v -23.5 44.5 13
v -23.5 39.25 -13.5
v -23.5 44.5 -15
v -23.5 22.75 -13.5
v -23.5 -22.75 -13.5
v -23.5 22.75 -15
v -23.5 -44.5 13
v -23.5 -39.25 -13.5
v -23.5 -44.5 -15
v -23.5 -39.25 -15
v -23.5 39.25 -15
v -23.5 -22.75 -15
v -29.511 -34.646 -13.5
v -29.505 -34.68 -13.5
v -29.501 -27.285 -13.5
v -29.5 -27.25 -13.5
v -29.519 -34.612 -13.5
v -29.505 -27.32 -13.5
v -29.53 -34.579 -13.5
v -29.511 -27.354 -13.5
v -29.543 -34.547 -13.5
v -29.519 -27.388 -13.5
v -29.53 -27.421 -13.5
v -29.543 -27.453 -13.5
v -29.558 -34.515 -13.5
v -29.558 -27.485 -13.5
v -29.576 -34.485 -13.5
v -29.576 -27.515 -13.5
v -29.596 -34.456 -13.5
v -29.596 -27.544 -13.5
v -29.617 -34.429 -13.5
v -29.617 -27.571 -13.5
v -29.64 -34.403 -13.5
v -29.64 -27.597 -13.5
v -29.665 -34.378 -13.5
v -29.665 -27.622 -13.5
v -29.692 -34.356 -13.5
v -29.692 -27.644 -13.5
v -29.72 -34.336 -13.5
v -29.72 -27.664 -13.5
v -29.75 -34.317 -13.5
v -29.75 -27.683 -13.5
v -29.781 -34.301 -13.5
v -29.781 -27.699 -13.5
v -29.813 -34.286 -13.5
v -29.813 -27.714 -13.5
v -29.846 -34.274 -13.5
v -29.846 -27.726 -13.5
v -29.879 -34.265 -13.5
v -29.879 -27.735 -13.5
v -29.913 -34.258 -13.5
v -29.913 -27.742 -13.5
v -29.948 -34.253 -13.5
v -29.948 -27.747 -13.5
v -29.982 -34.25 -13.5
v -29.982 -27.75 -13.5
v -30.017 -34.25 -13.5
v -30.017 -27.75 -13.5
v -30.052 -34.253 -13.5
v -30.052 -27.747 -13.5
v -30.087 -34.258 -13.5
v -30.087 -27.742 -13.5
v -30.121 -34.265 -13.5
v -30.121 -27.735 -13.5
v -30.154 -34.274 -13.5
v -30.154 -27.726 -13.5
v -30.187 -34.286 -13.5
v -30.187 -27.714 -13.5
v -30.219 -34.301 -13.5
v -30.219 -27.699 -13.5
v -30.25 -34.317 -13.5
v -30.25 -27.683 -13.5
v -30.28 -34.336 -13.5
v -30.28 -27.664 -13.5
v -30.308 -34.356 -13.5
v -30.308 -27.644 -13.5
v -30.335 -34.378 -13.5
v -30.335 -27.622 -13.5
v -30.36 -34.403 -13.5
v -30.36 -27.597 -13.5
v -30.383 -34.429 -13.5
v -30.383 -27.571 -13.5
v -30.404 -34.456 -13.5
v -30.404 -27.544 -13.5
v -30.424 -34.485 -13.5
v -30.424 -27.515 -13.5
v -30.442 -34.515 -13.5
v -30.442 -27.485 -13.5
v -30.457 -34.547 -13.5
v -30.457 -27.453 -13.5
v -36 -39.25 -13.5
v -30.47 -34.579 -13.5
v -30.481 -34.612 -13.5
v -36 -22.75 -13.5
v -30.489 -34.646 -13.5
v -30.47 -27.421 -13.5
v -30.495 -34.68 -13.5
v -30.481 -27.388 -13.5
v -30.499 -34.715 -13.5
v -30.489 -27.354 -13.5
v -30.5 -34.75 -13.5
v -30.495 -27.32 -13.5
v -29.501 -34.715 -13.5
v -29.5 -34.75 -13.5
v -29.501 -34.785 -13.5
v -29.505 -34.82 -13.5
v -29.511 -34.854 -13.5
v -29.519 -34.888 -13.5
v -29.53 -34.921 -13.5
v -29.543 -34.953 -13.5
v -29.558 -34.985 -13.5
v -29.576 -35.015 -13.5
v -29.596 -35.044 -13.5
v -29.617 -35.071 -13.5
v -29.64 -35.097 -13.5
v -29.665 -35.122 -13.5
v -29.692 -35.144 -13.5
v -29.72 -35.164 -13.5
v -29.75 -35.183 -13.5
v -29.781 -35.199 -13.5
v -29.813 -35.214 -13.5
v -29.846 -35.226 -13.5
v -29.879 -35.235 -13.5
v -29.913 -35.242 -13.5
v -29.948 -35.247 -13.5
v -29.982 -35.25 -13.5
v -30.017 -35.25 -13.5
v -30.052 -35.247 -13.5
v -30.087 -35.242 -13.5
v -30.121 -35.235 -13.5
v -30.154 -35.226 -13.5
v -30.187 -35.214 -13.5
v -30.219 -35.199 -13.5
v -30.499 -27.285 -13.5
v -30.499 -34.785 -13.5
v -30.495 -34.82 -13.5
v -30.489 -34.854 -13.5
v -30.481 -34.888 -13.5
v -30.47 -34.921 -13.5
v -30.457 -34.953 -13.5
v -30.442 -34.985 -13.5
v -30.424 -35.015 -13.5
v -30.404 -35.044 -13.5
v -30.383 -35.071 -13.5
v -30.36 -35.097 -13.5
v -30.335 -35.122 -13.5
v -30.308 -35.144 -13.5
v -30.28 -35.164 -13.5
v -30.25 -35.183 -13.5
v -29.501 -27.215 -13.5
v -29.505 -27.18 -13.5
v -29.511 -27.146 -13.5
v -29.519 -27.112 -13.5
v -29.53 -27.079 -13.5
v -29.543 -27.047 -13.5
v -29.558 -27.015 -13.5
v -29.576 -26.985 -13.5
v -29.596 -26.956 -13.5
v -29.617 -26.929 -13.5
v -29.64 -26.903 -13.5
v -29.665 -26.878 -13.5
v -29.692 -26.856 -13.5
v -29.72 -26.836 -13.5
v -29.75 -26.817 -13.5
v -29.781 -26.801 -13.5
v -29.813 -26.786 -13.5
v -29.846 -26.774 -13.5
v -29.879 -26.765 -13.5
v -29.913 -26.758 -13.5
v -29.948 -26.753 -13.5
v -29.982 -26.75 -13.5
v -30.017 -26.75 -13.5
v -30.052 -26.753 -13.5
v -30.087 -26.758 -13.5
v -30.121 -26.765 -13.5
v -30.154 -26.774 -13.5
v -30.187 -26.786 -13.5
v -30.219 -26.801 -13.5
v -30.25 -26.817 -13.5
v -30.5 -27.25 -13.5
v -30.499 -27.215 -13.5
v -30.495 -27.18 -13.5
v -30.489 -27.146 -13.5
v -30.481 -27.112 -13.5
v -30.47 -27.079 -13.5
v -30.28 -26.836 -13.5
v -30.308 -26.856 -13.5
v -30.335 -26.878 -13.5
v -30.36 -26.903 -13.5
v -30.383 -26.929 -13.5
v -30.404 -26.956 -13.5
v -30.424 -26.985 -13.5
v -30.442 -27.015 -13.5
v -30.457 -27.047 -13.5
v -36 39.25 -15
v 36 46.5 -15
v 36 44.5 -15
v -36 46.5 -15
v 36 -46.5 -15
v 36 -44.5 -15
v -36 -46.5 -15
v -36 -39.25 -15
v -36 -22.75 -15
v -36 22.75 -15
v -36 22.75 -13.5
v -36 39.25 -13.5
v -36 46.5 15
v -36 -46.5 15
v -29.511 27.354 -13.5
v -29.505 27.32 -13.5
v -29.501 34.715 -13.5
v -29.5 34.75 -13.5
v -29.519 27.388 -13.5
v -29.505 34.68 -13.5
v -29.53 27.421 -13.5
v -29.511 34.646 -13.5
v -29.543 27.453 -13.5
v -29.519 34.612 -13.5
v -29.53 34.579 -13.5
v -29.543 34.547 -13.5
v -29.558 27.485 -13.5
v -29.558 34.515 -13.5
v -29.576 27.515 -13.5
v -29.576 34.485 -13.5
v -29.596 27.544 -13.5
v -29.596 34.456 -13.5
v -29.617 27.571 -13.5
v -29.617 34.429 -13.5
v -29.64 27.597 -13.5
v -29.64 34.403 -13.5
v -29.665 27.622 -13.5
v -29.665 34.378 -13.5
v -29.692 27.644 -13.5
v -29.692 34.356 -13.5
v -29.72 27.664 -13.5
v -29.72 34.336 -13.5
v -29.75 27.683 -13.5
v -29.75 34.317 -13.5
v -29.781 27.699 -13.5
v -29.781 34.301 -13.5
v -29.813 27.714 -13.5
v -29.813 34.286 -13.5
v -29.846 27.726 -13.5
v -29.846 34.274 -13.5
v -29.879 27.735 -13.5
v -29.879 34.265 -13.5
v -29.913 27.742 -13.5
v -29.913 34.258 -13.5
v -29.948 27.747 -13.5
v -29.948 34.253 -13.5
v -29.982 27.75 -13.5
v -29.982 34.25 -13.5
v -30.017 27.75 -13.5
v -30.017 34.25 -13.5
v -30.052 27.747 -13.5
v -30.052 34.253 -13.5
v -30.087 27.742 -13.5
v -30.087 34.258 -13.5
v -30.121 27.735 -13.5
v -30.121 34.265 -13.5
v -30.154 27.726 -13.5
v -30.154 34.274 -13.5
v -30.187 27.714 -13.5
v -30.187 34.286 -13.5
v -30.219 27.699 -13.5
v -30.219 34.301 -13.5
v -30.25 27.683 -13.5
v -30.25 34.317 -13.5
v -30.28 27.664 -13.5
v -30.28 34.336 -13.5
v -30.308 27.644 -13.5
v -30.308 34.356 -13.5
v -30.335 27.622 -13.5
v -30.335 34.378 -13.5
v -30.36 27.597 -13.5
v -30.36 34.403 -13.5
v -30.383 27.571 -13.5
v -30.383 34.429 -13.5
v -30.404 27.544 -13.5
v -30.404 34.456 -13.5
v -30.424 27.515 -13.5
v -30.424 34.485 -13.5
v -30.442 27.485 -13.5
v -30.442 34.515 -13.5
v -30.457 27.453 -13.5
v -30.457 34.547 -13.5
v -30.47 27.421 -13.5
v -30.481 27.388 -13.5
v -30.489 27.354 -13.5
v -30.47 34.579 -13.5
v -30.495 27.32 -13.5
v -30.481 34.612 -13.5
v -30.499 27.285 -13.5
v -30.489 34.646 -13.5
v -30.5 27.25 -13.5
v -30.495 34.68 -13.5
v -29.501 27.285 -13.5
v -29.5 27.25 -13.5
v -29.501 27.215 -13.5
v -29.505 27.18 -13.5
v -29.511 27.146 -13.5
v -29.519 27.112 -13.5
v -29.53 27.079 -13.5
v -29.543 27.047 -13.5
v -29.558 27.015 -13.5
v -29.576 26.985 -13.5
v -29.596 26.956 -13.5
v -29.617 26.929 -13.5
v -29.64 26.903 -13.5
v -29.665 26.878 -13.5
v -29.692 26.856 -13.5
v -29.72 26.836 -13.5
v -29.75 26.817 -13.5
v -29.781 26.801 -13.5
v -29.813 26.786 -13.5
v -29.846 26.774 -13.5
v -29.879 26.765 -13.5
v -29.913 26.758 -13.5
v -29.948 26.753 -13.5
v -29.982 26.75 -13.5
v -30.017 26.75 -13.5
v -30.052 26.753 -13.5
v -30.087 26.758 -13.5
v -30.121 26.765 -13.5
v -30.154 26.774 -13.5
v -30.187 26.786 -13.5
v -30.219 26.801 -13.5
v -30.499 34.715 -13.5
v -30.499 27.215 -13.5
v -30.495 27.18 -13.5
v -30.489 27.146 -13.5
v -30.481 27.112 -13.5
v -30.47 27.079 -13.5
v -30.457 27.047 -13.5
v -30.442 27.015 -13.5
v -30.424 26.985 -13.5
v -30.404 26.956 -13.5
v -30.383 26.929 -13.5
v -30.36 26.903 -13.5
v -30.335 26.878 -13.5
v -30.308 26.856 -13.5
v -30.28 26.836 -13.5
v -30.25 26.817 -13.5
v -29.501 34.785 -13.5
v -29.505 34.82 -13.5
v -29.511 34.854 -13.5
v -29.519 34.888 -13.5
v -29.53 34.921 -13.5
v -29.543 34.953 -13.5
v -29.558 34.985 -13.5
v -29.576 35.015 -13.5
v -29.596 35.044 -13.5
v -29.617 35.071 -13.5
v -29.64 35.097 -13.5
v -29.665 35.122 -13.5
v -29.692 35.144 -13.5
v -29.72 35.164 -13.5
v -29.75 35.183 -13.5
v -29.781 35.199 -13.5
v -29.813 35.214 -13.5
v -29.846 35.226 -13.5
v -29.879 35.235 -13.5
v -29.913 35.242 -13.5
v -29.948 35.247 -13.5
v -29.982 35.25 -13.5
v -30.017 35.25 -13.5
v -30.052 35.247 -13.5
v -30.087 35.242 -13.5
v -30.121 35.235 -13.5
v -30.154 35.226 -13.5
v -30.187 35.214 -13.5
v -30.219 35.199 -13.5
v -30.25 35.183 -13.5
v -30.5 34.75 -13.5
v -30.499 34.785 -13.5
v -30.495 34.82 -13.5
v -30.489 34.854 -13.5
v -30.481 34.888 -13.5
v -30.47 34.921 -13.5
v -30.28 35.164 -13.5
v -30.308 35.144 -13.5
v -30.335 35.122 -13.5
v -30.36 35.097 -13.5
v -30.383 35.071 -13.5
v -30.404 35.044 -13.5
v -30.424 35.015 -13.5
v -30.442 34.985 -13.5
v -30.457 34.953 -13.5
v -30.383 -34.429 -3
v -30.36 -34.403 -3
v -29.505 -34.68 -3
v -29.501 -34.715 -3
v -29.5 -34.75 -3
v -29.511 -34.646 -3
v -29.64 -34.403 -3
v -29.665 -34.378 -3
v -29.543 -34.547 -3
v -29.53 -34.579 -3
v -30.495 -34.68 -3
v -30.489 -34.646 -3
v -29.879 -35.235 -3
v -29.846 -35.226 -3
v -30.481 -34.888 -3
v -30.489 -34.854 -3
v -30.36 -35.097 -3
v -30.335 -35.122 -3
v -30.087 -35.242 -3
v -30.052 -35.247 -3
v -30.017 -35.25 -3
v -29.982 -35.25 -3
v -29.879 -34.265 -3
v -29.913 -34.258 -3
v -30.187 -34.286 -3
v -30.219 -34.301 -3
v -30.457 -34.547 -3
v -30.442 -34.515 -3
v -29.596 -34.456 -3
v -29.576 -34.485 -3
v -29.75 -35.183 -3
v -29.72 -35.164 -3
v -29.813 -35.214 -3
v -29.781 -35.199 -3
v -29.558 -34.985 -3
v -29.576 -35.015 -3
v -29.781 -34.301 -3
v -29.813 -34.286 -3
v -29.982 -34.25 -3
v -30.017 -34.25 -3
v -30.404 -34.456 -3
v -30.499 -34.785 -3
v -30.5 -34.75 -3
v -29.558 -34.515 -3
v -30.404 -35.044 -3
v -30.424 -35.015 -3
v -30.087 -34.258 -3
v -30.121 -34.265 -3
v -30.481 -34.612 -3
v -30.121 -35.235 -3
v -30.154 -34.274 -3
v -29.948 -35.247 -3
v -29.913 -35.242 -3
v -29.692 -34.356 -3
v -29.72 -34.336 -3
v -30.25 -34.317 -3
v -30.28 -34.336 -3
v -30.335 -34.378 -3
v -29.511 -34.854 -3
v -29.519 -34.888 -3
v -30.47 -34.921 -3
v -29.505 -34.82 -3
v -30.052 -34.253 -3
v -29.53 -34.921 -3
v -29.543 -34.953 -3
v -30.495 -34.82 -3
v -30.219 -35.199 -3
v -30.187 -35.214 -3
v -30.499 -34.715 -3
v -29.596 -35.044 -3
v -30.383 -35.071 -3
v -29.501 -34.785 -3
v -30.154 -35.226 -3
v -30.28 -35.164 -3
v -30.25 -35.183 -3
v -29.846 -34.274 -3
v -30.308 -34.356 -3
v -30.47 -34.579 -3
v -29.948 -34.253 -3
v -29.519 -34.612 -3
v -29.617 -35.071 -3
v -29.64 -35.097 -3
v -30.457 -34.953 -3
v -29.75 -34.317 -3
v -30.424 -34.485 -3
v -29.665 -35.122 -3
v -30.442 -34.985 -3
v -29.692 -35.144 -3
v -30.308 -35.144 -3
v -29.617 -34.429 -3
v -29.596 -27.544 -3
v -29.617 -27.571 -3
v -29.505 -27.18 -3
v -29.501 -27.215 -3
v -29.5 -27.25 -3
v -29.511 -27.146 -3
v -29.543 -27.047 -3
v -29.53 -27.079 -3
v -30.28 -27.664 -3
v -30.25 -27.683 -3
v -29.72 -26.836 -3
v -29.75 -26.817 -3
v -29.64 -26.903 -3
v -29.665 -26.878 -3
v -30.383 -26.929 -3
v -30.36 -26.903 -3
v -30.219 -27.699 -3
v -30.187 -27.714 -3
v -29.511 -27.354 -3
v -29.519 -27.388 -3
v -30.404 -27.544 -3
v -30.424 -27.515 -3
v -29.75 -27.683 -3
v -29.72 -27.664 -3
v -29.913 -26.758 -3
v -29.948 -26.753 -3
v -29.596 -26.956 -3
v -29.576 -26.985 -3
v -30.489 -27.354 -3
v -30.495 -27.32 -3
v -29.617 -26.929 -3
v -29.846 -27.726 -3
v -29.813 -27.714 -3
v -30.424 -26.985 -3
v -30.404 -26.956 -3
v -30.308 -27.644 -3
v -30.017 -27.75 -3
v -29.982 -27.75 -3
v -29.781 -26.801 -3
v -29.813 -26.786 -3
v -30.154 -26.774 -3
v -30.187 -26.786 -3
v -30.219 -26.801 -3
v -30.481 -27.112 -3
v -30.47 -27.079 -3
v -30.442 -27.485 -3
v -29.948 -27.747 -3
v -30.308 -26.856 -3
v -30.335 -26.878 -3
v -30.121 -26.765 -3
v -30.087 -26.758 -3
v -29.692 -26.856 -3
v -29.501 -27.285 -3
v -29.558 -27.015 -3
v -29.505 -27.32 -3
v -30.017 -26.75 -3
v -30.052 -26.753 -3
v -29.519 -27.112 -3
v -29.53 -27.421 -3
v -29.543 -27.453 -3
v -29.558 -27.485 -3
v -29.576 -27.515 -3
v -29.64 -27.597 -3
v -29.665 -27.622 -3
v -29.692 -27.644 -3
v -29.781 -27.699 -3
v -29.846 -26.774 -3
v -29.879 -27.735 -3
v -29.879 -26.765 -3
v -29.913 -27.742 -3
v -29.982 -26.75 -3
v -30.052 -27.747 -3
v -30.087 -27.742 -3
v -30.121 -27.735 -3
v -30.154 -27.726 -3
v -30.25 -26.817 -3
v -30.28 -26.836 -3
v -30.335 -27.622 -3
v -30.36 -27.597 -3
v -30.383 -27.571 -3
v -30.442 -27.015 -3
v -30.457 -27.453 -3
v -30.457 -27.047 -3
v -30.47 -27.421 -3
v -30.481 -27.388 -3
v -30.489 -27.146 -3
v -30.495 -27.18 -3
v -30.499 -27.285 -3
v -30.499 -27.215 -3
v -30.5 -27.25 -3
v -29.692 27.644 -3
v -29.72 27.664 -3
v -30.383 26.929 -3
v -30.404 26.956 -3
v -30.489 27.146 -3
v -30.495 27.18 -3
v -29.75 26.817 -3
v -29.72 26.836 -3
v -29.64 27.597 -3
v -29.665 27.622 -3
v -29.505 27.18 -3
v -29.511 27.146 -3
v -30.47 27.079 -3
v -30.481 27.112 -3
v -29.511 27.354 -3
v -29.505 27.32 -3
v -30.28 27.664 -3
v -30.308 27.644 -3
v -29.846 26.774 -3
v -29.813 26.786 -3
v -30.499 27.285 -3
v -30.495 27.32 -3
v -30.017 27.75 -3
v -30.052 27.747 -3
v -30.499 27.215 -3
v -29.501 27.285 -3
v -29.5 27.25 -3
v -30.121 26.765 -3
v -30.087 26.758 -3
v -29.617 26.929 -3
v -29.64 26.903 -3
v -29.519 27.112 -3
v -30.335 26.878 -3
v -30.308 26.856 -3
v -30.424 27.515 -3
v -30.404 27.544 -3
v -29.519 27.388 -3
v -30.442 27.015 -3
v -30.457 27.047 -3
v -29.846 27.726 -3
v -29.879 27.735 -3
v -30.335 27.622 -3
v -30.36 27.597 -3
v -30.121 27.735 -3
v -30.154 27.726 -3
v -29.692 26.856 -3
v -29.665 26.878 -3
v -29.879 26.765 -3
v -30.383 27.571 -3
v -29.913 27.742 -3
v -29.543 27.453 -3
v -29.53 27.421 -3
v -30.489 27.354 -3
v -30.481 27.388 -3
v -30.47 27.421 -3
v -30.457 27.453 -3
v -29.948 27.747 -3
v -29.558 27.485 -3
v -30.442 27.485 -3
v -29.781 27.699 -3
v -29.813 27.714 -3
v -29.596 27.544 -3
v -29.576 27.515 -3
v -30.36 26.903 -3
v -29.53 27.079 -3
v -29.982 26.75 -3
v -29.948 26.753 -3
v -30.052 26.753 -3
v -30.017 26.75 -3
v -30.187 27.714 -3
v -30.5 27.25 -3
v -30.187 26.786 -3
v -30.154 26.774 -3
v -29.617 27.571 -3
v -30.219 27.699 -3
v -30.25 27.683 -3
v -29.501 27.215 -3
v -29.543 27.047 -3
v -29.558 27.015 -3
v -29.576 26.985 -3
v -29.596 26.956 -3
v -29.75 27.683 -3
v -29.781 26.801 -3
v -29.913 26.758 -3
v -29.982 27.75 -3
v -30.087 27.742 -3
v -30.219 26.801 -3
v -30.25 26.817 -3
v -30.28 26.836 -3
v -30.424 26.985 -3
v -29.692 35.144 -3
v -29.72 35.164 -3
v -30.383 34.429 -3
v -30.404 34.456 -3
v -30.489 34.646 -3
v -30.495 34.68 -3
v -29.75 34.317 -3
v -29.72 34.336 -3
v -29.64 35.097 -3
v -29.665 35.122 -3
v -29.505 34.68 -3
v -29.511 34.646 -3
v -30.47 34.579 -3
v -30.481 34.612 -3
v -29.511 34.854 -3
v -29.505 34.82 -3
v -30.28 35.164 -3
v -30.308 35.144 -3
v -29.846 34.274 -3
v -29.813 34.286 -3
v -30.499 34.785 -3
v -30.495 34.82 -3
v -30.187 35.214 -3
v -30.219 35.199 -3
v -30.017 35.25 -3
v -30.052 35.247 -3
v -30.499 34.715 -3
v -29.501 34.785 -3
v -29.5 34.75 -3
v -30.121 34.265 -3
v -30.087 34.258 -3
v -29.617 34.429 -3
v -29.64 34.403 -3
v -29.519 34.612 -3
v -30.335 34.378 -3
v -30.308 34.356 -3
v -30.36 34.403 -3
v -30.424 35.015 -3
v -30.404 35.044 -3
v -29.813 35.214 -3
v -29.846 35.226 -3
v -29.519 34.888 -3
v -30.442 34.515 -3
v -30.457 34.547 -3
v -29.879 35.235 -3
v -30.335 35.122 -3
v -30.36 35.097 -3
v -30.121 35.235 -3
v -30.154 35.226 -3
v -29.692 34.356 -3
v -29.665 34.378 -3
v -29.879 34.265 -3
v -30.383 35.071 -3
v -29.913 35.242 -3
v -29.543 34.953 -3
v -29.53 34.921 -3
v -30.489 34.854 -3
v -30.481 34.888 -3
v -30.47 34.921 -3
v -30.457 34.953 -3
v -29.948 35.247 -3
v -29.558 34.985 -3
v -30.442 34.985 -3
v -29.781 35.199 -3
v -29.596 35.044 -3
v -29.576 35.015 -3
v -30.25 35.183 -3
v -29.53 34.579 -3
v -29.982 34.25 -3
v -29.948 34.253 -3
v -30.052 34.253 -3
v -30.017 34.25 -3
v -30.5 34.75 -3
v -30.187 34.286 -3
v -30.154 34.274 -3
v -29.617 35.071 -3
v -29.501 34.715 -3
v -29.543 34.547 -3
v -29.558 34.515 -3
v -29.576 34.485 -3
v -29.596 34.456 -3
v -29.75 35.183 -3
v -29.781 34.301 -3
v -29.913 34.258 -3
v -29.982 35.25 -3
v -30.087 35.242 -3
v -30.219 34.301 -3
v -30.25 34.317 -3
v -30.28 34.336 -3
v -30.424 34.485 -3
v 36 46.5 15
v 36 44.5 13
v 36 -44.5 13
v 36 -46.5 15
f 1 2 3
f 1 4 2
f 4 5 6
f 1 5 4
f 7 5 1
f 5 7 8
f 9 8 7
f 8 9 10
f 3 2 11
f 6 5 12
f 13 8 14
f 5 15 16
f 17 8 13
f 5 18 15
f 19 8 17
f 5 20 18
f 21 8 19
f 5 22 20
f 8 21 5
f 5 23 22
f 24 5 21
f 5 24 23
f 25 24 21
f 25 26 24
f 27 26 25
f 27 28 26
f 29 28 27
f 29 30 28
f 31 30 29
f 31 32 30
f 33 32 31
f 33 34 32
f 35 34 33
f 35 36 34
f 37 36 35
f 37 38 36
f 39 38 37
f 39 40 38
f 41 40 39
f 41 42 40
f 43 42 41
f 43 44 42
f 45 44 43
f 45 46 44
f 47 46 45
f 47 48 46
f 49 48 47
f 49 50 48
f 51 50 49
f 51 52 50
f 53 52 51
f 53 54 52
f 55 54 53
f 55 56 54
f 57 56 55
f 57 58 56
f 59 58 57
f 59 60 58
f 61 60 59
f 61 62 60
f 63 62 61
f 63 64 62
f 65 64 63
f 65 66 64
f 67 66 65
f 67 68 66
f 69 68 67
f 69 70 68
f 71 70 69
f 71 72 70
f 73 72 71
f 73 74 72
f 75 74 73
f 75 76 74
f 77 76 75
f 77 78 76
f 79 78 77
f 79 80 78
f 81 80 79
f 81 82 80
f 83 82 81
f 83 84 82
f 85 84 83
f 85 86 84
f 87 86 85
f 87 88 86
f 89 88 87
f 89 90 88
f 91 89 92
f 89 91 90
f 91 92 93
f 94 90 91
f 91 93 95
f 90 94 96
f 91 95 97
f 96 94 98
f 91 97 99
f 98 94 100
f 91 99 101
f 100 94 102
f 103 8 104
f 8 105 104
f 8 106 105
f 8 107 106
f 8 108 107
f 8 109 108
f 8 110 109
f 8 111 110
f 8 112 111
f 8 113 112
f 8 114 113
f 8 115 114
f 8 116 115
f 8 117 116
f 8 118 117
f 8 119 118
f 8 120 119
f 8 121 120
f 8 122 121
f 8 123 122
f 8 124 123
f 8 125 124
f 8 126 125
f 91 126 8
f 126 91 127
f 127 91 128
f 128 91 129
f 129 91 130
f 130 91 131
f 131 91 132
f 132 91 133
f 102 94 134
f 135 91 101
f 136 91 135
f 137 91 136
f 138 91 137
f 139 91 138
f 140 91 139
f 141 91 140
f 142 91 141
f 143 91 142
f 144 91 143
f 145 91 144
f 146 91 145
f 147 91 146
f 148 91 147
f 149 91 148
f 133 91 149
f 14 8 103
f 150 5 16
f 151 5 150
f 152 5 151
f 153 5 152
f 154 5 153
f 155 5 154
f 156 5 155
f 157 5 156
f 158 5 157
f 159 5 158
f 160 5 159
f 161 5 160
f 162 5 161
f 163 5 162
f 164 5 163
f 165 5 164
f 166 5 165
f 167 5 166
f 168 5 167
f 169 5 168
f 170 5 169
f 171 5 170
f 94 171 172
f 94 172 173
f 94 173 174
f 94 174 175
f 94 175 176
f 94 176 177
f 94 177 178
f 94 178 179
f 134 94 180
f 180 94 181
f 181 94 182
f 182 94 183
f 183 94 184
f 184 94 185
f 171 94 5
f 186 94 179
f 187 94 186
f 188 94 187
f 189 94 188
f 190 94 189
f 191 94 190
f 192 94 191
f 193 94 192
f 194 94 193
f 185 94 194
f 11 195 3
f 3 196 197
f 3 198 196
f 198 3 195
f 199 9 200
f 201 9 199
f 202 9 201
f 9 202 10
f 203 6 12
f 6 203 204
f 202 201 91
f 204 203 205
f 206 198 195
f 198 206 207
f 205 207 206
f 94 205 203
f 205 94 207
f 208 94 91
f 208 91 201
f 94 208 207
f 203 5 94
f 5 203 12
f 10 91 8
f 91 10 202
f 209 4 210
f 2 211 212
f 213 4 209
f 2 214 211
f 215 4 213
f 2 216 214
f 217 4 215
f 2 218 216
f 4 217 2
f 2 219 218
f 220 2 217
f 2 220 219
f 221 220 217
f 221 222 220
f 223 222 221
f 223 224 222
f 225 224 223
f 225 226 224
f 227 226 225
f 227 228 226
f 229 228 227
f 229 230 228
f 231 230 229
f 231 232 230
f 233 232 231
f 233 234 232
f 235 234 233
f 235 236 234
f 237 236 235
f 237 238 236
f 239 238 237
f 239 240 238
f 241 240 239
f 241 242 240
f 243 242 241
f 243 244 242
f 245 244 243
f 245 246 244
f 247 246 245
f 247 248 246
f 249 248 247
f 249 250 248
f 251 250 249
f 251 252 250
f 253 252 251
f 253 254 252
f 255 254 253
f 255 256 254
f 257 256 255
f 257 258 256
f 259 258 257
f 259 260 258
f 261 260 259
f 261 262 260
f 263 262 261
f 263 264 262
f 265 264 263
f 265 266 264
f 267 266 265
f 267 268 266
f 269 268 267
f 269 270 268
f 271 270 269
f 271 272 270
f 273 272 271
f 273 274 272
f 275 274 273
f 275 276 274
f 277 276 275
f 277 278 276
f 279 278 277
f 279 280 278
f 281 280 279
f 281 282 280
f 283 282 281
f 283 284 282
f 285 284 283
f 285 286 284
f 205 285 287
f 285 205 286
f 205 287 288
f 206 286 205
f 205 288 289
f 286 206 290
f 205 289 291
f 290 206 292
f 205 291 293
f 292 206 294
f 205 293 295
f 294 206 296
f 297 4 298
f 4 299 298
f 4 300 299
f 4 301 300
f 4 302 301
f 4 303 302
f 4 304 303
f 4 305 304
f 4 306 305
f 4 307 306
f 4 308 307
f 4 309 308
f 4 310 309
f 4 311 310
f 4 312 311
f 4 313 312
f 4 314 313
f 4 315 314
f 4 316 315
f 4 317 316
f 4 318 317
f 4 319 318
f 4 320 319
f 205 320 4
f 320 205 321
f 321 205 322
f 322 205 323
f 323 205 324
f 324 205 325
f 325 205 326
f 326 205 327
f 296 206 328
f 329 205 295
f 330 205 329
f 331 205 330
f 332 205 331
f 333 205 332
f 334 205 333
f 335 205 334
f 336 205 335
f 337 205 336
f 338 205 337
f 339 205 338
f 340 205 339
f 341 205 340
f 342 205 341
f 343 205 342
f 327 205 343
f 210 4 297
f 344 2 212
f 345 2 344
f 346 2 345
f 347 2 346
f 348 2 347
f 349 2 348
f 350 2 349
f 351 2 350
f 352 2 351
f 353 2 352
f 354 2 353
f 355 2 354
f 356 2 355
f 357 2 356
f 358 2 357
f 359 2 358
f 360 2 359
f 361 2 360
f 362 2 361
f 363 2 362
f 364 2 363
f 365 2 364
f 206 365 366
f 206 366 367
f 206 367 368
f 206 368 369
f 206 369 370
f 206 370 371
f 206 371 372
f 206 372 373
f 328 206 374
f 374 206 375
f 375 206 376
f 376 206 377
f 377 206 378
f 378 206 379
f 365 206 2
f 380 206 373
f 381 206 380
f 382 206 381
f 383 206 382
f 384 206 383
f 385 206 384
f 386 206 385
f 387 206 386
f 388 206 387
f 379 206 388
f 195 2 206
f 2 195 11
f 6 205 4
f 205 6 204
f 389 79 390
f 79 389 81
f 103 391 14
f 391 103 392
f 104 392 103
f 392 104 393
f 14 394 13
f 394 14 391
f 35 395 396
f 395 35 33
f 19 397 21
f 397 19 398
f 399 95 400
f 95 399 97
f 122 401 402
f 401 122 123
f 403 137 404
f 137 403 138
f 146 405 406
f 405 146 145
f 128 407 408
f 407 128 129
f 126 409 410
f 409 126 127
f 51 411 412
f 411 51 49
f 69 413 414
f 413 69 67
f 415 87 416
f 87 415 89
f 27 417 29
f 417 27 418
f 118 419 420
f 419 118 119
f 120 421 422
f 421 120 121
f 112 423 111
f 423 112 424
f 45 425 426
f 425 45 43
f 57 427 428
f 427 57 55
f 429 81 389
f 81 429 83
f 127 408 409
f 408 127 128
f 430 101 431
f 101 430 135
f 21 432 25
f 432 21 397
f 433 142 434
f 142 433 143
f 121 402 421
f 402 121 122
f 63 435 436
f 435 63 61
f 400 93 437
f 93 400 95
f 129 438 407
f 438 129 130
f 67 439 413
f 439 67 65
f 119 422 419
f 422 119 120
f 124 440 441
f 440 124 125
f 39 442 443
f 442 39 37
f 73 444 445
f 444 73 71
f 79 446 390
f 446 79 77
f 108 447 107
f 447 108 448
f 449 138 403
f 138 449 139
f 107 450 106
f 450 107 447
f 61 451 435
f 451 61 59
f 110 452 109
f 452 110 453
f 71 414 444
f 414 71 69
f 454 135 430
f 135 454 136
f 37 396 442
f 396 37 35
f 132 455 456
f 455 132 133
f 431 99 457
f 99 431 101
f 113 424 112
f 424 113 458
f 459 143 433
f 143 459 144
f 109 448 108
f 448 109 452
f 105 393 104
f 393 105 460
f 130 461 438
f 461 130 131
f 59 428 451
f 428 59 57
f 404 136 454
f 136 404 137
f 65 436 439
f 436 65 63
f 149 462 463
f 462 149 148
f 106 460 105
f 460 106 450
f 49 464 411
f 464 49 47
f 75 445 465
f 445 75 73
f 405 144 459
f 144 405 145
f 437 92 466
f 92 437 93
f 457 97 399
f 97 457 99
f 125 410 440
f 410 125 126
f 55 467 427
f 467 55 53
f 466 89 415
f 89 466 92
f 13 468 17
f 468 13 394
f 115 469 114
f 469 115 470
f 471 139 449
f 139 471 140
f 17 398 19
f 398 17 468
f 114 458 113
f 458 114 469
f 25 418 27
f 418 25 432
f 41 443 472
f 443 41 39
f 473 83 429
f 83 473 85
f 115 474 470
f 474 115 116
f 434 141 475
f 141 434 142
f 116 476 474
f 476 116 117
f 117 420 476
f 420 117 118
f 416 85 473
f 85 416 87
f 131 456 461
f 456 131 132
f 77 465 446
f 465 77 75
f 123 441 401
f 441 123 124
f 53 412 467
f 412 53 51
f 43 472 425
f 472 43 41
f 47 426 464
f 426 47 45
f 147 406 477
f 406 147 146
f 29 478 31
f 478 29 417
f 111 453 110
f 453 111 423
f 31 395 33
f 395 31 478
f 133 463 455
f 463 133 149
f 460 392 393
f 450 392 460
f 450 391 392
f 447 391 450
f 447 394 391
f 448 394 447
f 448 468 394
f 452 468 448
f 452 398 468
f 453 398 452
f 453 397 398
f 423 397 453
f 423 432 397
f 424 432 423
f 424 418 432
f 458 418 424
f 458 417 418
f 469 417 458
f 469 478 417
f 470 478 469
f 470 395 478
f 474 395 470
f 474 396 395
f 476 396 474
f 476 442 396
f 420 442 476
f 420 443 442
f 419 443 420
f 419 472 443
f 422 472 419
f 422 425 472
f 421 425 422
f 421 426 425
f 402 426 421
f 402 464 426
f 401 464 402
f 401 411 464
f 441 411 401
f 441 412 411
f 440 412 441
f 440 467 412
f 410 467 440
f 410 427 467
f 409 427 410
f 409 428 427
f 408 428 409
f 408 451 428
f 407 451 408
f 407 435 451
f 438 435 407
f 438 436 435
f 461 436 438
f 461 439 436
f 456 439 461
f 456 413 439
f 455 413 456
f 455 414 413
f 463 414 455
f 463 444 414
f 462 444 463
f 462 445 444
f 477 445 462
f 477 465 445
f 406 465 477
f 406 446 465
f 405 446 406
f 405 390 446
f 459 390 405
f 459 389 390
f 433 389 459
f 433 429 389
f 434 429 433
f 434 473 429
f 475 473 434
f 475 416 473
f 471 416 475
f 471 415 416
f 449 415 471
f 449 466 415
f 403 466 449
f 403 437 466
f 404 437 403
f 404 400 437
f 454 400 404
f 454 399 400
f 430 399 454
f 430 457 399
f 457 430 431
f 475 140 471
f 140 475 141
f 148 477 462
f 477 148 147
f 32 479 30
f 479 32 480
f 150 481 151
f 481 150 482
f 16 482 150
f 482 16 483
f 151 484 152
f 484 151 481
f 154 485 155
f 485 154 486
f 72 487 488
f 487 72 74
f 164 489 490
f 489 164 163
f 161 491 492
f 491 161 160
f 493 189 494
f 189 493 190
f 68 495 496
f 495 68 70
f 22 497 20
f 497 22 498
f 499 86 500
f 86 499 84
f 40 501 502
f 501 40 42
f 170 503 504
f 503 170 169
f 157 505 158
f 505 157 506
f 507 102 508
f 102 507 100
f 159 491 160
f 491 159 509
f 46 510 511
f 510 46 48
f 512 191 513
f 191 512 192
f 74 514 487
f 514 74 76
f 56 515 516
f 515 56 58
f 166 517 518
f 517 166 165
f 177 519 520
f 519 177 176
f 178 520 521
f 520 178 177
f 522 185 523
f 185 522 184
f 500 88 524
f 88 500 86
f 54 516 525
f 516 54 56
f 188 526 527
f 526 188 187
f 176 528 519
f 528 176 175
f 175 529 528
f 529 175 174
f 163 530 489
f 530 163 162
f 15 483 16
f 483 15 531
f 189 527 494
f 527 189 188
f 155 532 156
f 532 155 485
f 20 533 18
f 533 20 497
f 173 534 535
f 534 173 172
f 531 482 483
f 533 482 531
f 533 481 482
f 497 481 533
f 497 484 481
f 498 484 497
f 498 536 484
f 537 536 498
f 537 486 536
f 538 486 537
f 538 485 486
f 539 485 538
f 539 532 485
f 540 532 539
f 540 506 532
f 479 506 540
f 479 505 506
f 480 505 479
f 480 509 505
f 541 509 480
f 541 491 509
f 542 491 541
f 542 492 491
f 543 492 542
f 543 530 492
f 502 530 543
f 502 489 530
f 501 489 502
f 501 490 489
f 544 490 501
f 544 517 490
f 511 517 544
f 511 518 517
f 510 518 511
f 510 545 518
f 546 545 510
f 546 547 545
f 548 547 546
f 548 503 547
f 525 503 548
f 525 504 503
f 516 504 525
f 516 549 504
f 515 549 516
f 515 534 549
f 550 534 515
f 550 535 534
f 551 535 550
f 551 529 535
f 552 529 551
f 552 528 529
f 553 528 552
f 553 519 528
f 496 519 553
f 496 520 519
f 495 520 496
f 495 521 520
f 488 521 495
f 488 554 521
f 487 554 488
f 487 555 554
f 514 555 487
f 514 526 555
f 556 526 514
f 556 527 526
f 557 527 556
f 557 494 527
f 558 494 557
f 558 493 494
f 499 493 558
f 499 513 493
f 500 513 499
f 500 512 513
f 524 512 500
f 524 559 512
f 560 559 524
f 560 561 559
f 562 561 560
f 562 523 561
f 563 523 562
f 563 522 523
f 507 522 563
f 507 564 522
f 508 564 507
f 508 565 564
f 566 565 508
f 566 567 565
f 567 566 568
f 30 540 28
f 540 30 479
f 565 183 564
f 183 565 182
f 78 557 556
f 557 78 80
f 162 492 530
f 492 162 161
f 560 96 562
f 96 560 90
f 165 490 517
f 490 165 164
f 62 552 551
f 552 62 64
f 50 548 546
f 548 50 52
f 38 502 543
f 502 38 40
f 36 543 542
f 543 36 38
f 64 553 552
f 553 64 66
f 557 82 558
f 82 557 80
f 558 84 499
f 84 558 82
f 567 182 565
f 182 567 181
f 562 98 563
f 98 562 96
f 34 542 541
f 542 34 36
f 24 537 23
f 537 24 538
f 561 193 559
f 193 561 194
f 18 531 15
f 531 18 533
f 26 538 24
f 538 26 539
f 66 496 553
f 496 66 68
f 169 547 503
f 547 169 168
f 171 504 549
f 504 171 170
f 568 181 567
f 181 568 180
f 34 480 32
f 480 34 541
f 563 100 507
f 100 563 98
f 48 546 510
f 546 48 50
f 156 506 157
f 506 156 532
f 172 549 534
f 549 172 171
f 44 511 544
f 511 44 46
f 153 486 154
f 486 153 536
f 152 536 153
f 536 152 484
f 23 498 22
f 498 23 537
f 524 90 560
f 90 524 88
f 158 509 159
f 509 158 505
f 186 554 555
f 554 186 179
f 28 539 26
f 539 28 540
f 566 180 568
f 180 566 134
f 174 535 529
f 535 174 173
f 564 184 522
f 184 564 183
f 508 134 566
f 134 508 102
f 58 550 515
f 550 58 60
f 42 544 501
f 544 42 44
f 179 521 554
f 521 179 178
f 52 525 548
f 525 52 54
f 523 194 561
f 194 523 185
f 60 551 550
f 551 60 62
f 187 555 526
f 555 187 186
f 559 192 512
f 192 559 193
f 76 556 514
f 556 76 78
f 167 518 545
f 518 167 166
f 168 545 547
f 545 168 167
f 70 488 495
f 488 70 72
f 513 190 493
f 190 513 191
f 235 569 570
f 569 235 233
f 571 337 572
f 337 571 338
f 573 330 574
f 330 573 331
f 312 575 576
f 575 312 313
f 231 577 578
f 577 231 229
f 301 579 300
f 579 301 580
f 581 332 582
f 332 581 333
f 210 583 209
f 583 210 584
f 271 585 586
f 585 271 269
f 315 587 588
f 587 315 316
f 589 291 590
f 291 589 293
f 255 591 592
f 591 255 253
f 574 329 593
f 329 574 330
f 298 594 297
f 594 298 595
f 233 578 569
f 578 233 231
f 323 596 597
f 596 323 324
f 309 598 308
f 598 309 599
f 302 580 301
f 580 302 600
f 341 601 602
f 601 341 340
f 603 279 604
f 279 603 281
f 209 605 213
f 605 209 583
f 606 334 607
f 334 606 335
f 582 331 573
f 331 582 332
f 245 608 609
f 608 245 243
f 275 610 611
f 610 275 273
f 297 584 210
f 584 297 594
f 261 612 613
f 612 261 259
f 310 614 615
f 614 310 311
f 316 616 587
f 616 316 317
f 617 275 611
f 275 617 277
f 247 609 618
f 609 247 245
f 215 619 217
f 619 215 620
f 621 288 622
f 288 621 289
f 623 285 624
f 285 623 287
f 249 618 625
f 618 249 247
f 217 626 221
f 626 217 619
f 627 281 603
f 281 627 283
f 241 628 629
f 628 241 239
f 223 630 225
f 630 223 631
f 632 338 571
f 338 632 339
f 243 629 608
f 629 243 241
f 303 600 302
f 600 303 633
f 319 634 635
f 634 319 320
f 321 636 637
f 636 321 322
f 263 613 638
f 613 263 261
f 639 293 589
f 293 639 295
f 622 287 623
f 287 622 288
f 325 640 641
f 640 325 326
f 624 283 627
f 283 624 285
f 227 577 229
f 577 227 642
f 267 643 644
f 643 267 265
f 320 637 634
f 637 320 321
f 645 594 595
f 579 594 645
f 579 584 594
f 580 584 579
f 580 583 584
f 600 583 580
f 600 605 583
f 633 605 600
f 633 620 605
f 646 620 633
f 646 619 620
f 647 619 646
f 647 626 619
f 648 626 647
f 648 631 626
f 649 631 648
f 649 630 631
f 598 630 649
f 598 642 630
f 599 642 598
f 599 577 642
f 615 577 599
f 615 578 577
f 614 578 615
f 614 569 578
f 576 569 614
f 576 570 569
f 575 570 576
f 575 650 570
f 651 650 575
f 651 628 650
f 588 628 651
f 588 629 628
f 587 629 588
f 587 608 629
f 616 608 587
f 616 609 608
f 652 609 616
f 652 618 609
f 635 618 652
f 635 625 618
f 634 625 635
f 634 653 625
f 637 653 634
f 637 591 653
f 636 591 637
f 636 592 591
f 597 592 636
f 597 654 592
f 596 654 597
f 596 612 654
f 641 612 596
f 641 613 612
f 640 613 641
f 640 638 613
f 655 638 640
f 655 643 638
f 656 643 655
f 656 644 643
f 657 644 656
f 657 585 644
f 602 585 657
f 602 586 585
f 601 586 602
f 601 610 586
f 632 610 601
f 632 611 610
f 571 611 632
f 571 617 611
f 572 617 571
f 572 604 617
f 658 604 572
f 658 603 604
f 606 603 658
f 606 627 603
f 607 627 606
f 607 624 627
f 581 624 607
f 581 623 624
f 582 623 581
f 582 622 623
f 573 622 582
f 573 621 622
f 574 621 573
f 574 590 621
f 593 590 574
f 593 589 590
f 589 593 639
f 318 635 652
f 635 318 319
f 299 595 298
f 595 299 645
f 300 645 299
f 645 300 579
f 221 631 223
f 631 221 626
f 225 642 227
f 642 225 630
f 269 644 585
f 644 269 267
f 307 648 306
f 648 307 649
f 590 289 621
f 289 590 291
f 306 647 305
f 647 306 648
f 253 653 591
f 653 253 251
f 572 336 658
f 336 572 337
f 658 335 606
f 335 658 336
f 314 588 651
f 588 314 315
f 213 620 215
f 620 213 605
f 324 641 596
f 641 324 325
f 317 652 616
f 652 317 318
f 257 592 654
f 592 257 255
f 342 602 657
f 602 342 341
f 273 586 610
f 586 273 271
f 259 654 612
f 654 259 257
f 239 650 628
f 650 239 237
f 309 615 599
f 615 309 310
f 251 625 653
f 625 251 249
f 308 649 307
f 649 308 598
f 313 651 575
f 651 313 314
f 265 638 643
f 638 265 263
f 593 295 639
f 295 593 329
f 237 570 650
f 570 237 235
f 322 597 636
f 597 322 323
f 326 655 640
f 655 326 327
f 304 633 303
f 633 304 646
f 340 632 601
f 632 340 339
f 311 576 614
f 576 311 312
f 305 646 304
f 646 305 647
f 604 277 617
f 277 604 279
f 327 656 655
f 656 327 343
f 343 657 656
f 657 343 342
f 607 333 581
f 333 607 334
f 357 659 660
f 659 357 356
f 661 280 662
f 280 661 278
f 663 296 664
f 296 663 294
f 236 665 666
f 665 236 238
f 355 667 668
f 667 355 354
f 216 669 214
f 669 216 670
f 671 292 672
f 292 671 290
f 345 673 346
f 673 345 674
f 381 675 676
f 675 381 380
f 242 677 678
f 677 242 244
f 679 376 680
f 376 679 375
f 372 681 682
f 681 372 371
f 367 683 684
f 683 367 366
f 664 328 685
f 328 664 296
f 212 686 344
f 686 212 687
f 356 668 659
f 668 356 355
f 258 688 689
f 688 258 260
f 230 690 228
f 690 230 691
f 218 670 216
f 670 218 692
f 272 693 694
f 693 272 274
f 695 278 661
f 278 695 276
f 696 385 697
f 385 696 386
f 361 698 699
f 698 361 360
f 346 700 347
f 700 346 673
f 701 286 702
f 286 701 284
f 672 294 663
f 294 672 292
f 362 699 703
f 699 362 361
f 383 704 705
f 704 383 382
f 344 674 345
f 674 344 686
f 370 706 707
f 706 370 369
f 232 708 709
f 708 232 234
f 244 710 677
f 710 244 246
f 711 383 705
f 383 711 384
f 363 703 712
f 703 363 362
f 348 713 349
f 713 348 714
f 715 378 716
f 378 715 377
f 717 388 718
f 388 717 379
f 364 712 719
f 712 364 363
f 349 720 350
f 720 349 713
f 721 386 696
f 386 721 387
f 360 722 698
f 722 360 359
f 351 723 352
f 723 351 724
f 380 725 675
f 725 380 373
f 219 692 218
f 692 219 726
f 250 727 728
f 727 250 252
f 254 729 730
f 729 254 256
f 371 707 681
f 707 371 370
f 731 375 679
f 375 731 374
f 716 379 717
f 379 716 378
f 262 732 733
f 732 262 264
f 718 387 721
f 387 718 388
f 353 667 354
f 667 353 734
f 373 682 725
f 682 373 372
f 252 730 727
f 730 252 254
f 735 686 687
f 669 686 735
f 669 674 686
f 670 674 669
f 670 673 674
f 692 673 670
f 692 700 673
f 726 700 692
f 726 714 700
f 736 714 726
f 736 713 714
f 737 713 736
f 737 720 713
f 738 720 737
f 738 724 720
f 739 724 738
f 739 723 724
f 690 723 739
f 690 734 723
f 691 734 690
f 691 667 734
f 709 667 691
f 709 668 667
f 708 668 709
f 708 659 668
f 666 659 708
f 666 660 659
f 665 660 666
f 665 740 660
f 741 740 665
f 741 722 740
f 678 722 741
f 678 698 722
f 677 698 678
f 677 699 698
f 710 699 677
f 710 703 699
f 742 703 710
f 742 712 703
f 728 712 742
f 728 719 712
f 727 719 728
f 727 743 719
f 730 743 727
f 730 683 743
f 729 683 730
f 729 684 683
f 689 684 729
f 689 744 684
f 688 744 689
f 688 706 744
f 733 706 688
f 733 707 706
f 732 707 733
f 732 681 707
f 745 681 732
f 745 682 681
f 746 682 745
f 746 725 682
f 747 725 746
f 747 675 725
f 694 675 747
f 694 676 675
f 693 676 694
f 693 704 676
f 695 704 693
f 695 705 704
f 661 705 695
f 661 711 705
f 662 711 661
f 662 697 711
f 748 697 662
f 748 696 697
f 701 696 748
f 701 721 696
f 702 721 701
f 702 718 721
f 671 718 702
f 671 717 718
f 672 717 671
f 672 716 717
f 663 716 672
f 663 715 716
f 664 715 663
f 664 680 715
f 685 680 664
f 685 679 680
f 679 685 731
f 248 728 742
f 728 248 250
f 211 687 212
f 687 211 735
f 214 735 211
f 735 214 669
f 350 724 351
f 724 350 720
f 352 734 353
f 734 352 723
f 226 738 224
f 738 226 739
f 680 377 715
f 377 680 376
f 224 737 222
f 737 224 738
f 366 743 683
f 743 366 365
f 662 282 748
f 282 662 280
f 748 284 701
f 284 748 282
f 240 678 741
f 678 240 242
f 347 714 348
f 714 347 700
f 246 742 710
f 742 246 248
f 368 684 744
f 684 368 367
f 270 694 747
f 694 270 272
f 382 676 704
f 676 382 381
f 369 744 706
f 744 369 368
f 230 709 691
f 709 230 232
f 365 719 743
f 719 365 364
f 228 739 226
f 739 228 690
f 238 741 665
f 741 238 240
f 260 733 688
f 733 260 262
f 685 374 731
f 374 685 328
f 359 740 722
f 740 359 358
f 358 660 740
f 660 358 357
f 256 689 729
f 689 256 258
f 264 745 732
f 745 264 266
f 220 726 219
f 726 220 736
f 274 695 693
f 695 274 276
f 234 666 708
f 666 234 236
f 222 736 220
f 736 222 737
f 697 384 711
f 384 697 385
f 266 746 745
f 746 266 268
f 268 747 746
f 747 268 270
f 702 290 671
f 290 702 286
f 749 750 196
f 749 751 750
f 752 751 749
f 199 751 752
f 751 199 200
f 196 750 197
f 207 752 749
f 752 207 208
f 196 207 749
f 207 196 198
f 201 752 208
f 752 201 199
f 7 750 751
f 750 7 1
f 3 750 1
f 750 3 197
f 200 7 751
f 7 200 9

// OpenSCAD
$fn = 90;
wallThickness = 2;

length = 145/2-0.5;
width = 93;
height = 60/2;

hingeHolderX = 12.5;
hingeHolderHeight = 12;

difference(){
	cube([length, width, height], center=true);
	#translate([hingeHolderX/2, 0, -wallThickness/2])
		cube([length-hingeHolderX, width-2*wallThickness, height-wallThickness], center=true);
	hingePit();
}

module hingePit(){
	pitHeight = 1.5;
	pitY = [-width/3, width/3];
	for(y = pitY){
		#translate([(-length+hingeHolderX)/2, y, (-height+pitHeight)/2])
			cube([hingeHolderX, 16.5, pitHeight], center=true);
	}
	
	holeDistance = 7.5;
	for(y = pitY){
		for(holeY = [-holeDistance/2, holeDistance/2]){
			#translate([(-length+hingeHolderX-0.5)/2, y+holeY, (-height+hingeHolderHeight)/2])
				cylinder(d=1, h=hingeHolderHeight, center=true);
		}
	}
}
